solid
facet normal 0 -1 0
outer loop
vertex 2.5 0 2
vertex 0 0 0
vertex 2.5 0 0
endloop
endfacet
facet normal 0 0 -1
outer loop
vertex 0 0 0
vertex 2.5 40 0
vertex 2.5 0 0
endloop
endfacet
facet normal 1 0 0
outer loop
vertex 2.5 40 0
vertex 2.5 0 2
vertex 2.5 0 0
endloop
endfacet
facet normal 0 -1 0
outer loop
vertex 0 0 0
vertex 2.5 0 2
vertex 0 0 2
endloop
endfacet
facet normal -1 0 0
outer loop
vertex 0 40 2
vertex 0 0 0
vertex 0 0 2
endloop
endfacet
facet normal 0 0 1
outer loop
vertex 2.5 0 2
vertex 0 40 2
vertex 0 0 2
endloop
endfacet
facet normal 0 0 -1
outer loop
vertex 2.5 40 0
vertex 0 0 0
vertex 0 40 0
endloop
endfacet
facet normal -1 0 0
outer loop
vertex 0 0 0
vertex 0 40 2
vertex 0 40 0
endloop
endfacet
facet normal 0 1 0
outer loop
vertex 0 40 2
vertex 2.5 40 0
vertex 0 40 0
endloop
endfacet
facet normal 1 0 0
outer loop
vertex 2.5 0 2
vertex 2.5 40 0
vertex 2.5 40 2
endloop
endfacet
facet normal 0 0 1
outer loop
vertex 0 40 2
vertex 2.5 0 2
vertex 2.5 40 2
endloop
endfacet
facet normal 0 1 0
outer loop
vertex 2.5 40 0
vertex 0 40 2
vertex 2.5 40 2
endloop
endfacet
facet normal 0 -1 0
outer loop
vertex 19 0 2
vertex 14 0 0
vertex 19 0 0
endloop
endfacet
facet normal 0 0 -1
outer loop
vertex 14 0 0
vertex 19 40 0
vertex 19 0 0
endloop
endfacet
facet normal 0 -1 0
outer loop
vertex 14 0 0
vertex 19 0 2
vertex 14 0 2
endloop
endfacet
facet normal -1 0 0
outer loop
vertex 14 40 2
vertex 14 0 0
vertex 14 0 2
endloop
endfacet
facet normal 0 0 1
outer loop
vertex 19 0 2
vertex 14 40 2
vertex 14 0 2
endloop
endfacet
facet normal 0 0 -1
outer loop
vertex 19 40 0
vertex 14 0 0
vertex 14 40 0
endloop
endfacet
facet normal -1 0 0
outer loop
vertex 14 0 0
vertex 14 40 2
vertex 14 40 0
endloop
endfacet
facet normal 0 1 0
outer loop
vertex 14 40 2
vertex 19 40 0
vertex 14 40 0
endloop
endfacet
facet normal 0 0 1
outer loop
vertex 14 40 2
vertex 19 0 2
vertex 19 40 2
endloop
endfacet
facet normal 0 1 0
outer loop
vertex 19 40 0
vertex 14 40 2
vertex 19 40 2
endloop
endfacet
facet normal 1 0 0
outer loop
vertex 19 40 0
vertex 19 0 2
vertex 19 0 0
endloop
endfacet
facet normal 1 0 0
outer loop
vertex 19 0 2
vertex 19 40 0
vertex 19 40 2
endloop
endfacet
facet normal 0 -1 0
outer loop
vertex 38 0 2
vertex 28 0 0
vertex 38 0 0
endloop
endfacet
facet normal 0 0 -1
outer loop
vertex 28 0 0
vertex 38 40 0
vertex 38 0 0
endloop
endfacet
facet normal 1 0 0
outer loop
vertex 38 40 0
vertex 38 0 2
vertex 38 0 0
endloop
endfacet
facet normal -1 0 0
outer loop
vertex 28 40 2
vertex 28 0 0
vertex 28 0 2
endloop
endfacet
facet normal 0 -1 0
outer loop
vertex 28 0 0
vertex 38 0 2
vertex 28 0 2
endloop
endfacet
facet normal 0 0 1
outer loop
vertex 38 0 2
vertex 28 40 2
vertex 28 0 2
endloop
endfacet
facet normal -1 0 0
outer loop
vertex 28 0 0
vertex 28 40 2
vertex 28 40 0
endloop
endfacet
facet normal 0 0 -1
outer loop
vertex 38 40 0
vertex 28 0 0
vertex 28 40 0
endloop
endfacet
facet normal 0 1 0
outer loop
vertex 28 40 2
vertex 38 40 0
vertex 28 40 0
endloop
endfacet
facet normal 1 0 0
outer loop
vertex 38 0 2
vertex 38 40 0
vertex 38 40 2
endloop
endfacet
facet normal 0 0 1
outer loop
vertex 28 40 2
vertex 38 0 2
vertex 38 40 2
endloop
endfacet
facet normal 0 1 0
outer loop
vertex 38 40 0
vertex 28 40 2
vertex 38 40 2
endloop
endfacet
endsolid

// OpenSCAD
// Fence shims 2.5 / 5 / 10 mm.
include <../cad/punch_rig_020.scad>
PART = "shims";
